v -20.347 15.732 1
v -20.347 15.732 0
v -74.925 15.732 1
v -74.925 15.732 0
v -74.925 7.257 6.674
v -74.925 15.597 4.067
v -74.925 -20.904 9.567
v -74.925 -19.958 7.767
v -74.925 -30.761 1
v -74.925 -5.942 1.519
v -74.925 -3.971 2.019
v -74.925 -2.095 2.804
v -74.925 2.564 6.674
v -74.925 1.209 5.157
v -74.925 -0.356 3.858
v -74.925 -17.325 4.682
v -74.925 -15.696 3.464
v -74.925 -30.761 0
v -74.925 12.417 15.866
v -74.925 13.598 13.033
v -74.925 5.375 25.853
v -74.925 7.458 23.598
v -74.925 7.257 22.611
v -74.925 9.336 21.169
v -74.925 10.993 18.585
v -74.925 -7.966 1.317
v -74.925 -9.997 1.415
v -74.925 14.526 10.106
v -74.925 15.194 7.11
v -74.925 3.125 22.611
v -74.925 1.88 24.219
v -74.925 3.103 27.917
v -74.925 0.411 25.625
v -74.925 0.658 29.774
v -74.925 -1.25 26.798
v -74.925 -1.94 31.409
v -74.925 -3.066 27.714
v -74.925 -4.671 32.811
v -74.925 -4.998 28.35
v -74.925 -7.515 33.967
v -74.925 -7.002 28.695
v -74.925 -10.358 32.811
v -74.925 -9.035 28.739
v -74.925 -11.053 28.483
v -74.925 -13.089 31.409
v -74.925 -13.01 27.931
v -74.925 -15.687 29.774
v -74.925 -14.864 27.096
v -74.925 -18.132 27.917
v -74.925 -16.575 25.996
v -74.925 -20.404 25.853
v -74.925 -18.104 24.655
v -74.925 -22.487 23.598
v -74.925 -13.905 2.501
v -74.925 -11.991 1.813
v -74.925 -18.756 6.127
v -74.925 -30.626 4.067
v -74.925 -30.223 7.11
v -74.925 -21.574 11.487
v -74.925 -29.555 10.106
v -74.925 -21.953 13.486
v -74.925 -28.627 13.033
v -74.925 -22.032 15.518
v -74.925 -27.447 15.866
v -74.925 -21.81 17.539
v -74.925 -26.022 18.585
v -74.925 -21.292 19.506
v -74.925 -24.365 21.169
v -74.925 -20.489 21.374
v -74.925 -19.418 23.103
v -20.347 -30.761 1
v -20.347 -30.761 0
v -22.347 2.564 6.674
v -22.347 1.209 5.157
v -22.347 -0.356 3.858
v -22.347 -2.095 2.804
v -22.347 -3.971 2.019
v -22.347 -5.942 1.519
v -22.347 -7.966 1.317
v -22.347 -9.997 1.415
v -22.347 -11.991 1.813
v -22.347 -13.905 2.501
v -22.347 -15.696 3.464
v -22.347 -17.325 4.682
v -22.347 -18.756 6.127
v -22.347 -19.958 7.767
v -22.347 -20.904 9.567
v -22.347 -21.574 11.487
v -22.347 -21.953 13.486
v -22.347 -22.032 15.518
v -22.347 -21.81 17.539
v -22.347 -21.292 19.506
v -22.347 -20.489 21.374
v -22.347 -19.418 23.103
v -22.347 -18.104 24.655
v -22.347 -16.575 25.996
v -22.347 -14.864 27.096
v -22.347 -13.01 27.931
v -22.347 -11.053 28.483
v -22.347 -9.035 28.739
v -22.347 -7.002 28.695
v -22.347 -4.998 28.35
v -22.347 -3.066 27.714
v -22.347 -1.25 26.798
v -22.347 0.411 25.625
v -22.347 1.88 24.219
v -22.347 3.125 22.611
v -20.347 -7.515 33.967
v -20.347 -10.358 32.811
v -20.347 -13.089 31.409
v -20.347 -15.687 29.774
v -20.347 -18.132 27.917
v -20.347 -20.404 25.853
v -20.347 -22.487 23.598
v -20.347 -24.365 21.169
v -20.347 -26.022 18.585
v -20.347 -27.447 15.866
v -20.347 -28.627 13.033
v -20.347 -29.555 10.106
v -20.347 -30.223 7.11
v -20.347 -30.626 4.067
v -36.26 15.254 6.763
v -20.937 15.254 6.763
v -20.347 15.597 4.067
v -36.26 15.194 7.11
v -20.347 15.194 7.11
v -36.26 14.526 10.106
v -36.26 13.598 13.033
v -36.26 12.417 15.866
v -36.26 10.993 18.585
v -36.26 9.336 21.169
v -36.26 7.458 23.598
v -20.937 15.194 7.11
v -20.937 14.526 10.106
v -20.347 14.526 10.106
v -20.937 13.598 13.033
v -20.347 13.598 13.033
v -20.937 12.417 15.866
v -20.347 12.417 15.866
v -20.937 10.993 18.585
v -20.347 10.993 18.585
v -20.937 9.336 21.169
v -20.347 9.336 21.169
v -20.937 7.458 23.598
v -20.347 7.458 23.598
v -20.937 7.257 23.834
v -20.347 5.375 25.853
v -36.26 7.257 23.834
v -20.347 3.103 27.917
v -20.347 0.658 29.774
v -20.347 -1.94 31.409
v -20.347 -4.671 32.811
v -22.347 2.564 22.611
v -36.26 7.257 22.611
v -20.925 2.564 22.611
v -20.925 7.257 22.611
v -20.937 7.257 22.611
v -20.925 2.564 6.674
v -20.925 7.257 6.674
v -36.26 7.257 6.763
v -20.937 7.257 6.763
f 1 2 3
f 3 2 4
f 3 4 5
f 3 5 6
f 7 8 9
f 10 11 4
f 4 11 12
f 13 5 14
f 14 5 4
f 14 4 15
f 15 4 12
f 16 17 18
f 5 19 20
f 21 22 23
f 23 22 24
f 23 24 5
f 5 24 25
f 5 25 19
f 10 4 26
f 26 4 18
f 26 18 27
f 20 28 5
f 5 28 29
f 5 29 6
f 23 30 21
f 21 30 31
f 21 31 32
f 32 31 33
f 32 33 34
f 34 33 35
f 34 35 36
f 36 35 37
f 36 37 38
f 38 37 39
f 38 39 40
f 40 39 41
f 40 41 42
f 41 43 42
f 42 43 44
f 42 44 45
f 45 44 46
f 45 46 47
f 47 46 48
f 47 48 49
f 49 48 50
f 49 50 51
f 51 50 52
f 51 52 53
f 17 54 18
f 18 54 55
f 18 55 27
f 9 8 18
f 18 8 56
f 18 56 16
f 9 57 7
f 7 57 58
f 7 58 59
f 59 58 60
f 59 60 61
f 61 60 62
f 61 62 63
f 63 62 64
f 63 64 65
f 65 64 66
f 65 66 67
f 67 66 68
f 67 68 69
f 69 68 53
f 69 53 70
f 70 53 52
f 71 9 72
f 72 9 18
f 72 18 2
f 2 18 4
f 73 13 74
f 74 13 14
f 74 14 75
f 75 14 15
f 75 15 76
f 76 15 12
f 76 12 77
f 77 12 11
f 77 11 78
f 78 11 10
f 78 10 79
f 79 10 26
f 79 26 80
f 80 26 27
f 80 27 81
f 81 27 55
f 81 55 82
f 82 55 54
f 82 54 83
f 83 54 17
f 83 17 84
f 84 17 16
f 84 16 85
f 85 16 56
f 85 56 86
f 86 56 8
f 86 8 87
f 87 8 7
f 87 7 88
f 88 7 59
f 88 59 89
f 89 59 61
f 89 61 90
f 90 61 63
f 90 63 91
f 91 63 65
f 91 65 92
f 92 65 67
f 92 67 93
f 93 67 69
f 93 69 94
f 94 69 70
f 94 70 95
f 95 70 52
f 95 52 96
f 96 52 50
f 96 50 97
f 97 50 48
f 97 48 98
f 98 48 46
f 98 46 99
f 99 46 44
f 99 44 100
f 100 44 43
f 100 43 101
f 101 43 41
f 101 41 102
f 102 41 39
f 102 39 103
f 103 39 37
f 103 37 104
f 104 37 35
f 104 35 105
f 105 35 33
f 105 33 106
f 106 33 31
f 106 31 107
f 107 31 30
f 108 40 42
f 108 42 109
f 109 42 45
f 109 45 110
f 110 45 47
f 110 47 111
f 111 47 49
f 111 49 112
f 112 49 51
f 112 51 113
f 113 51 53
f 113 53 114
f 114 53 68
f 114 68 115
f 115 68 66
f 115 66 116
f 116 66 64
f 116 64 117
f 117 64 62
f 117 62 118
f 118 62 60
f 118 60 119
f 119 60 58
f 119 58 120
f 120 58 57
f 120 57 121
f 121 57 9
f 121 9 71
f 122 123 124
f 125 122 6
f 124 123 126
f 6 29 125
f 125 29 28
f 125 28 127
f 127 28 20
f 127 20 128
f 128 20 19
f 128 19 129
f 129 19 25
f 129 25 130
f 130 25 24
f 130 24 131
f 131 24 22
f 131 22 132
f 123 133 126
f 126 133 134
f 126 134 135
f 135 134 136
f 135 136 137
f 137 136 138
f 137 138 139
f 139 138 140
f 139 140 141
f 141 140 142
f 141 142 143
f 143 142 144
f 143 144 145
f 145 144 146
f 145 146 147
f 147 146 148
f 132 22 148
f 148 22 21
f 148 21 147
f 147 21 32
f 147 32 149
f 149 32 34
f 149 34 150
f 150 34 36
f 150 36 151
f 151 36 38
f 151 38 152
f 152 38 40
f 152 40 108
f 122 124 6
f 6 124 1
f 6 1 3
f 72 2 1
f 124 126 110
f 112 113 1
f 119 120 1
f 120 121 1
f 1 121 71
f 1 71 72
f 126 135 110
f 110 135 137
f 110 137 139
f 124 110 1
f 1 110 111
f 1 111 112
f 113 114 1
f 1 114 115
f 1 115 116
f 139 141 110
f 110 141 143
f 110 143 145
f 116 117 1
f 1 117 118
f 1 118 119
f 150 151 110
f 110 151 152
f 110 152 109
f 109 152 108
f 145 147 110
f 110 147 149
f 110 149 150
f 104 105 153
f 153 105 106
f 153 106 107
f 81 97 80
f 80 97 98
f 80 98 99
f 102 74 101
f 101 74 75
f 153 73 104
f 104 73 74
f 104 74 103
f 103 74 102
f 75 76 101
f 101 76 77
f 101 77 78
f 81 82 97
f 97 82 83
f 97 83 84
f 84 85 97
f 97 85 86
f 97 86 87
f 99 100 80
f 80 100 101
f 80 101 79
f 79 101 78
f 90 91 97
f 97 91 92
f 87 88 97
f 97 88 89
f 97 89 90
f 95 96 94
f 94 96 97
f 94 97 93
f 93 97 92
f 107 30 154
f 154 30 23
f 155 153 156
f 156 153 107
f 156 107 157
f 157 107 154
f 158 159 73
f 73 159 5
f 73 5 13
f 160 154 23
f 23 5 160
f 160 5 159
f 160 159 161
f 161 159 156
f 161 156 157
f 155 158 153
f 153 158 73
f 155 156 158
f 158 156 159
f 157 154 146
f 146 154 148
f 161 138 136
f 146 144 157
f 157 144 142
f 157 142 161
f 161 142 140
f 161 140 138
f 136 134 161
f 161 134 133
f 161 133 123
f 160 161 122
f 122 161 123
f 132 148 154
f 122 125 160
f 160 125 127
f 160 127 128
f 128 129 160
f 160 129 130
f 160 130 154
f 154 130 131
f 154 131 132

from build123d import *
from build123d.topology import SkipClean

# Parameters (mm, degrees)
CROQUIS1_W              = 38.578820375
CROQUIS1_H              = 46.492266094
SALIENTE_EXTRUIR1_DEPTH = 36
CROQUIS2_R              = 13.723036729
CORTAR_EXTRUIR1_DEPTH   = 54
REDONDEO1_R             = 35
SALIENTE_EXTRUIR2_DEPTH = 16
CROQUIS4_R              = 13.723036729
CORTAR_EXTRUIR2_DEPTH   = 14
CROQUIS5_W              = 15.936830691
CROQUIS5_H              = 4.692990875
CORTAR_EXTRUIR3_DEPTH   = 54
CROQUIS6_W              = 15.323001746
CROQUIS6_H              = 19.007540334
CORTAR_EXTRUIR4_DEPTH   = 54


with BuildPart() as part:
    # Croquis1 → Saliente-Extruir1 (new body)
    with BuildSketch(Plane.XY):
        with Locations((-55.636003999, -7.514612749)):
            Rectangle(CROQUIS1_W, CROQUIS1_H)
    extrude(amount=SALIENTE_EXTRUIR1_DEPTH)

    # Croquis2 → Cortar-Extruir1 (cut)
    with BuildSketch(Plane.ZY.offset(74.925414186)):
        with Locations((15.035056118, -8.31763911)):
            Circle(CROQUIS2_R)
    extrude(amount=-CORTAR_EXTRUIR1_DEPTH, mode=Mode.SUBTRACT)

    # Redondeo1
    # the kernel refuses this fillet: 35 mm, written as the material it takes off along each edge
    with BuildSketch(Plane(origin=(51.153406189, 15.731520298, 36), x_dir=(0, 0, -1), z_dir=(-1, 0, 0))) as redondeo1_piece_1:
        with BuildLine():
            CenterArc((REDONDEO1_R, REDONDEO1_R), REDONDEO1_R, 180, 90)
            Line((0, REDONDEO1_R), (0, 0))
            Line((0, 0), (REDONDEO1_R, 0))
        make_face()
    extrude(amount=213.578820376, mode=Mode.SUBTRACT)
    with BuildSketch(Plane(origin=(-162.425414186, -30.760745796, 36), x_dir=(0, 1, 0), z_dir=(1, 0, 0))) as redondeo1_piece_2:
        with BuildLine():
            CenterArc((REDONDEO1_R, -REDONDEO1_R), REDONDEO1_R, 90, 90)
            Line((0, -REDONDEO1_R), (0, 0))
            Line((0, 0), (REDONDEO1_R, 0))
        make_face()
    extrude(amount=213.578820376, mode=Mode.SUBTRACT)

    # Croquis3 → Saliente-Extruir2 (add)
    with BuildSketch(Plane(origin=(-36.346593811, 0, 0), x_dir=(0, 0, -1), z_dir=(1, 0, 0))):
        with BuildLine():
            Line((0, 15.731520298), (-1, 15.731520298))
            ThreePointArc((-1, 15.731520298), (-21.169465246, 9.335587695), (-33.967356759, -7.514612749))
            ThreePointArc((-33.967356759, -7.514612749), (-21.169465246, -24.364813193), (-1, -30.760745796))
            Line((-1, -30.760745796), (0, -30.760745796))
            Line((0, -30.760745796), (0, 15.731520298))
        make_face()
    extrude(amount=SALIENTE_EXTRUIR2_DEPTH)

    # Croquis4 → Cortar-Extruir2 (cut)
    with SkipClean():  # the faces are left unmerged after this step: merging them gives an invalid solid
        with BuildSketch(Plane.ZY.offset(36.346593811)):
            with Locations((15.035056118, -8.31763911)):
                Circle(CROQUIS4_R)
        extrude(amount=-CORTAR_EXTRUIR2_DEPTH, mode=Mode.SUBTRACT)

    # Croquis5 → Cortar-Extruir3 (cut)
    with SkipClean():  # the faces are left unmerged after this step: merging them gives an invalid solid
        with BuildSketch(Plane.ZY.offset(74.925414186)):
            with Locations((14.642217913, 4.910546276)):
                Rectangle(CROQUIS5_W, CROQUIS5_H)
        extrude(amount=-CORTAR_EXTRUIR3_DEPTH, mode=Mode.SUBTRACT)

    # Croquis6 → Cortar-Extruir4 (cut)
    with SkipClean():  # the faces are left unmerged after this step: merging them gives an invalid solid
        with BuildSketch(Plane.XZ.offset(-7.257041714)):
            with Locations((-28.598941082, 16.267176719)):
                Rectangle(CROQUIS6_W, CROQUIS6_H)
        extrude(amount=-CORTAR_EXTRUIR4_DEPTH, mode=Mode.SUBTRACT)


solid = part.part
